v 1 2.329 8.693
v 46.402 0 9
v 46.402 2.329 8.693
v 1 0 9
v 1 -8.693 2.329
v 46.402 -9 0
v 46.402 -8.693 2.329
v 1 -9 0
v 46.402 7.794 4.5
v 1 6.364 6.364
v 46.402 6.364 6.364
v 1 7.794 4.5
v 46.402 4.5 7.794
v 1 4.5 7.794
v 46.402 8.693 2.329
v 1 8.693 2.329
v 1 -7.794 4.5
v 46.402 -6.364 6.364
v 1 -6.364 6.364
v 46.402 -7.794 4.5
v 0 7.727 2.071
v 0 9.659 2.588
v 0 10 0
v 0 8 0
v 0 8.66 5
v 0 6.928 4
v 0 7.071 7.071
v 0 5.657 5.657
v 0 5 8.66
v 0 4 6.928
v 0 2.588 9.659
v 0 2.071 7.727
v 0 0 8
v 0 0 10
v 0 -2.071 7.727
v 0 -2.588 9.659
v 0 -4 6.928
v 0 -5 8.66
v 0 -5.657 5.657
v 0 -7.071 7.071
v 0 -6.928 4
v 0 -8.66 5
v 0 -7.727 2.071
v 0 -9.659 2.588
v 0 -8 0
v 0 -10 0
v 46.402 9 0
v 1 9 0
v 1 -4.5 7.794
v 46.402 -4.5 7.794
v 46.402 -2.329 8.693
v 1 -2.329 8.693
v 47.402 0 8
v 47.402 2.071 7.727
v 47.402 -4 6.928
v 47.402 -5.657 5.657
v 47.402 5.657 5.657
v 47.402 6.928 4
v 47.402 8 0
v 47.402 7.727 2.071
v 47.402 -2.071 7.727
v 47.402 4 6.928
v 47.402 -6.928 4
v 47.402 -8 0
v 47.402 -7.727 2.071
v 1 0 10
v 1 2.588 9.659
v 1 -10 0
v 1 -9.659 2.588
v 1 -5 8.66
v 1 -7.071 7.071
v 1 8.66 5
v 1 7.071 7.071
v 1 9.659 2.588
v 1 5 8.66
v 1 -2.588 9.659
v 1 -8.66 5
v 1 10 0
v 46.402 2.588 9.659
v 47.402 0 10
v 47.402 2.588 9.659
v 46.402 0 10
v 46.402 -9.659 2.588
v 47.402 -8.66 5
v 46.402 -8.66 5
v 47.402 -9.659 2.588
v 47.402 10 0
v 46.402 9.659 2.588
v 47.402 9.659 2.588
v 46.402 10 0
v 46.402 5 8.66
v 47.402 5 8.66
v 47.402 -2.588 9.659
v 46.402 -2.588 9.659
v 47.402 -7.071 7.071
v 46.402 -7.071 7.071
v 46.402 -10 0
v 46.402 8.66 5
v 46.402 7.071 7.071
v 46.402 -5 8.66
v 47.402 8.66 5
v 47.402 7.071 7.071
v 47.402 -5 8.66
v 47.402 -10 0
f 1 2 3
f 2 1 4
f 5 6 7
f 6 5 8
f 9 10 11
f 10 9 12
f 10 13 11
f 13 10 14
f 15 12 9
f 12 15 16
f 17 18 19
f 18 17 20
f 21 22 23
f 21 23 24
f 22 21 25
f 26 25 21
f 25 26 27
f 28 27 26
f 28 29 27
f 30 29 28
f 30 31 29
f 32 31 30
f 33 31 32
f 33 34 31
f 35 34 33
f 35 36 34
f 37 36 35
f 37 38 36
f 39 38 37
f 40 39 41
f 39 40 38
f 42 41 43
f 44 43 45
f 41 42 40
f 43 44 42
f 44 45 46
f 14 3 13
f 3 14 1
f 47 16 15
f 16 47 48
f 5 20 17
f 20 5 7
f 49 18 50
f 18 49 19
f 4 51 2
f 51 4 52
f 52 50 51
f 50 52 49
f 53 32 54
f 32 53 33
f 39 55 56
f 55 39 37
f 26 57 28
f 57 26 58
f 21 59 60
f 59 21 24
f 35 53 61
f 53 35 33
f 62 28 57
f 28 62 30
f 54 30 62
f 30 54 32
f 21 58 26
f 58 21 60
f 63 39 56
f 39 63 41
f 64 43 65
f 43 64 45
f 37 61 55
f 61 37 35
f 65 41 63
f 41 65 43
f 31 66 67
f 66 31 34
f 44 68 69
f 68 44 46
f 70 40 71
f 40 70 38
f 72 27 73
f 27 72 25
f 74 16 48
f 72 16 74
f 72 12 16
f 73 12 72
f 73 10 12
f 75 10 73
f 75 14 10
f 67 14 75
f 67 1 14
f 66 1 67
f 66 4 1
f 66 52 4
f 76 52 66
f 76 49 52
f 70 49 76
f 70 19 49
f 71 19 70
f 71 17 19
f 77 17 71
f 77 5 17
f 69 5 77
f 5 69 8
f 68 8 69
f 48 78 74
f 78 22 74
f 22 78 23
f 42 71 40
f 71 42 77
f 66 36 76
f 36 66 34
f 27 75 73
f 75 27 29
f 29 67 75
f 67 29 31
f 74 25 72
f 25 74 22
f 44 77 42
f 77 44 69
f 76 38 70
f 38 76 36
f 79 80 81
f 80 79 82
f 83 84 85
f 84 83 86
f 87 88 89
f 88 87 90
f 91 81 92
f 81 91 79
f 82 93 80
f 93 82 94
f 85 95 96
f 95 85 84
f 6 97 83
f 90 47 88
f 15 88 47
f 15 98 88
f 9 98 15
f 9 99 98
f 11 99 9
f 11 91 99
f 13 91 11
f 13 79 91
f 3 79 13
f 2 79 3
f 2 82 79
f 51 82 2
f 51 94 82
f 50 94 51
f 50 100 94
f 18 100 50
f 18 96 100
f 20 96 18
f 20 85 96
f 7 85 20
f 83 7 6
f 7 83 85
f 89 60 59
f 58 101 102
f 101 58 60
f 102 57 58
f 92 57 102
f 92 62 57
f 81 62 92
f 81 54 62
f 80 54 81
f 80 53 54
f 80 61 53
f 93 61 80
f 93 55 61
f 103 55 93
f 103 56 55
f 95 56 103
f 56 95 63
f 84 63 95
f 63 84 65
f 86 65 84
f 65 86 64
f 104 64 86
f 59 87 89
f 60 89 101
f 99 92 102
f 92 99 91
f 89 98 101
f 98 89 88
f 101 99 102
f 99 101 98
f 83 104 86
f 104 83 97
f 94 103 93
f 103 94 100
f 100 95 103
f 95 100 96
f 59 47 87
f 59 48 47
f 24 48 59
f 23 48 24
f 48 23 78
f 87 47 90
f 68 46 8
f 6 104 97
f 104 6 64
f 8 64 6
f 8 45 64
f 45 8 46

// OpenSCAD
// file: ../build_environments.scad
// build_environments.scad: modules to build level sections
//

module pool(diameter=10.0, wall_height=2.0, step_width=3.0, connections=[])
{
    difference() {
        union() {
        difference() {
            cylinder(h=0.5,r1=diameter+step_width,r2=diameter+step_width,$fn=48);
            translate([0,0,-0.1])
                cylinder(h=0.7,r1=diameter,r2=diameter,$fn=48);
        }
        difference() {
            cylinder(h=wall_height,r1=diameter+step_width+1.0,r2=diameter+step_width+1.0,$fn=48);
            translate([0,0,-0.1])
                cylinder(h=wall_height+0.2,r1=diameter+step_width,r2=diameter+step_width,$fn=48);
        }
        }
    
        for (c = connections)
        {
            rotate([0,90,0]) {
                angle = atan2(c[1],c[0]);
                rotate([-angle,0,0]) {
                    cylinder(h=diameter+5.0,r1=c[2],r2=c[2],$fn=48);
                }
            }
        }
    }
}

module straight(length=10.0, width=2.0, dy1=0.0, dy2=0.0, dz=0.0)
{
    dims = [0, 0, 0, 0, 0, (dz/length)];
    matrix = [
        [ 1, dims[0], dims[1], 0 ],
        [ dims[2], 1, dims[4], 0 ],
        [ dims[5], dims[3], 1, 0 ],
        [ 0, 0, 0, 1 ]
    ];
    multmatrix(matrix)
    difference() {
        translate([dy1,0,0])
        union() {
            rotate([0,90,0]) {
                difference() {
                    cylinder(h=(length-dy1-dy2),r1=width+1.0,r2=width+1.0,$fn=24);
                    translate([0,0,-0.1])
                        cylinder(h=(length-dy1-dy2+0.2),r1=width,r2=width,$fn=24);
                }
                difference() {
                    cylinder(h=1.0,r1=width+2.0,r2=width+2.0,$fn=24);
                    translate([0,0,-0.1])
                        cylinder(h=1.2,r1=width,r2=width,$fn=24);
                }
                translate([0,0,(length-dy1-dy2)-1.0]) {
                    difference() {
                        cylinder(h=1.0,r1=width+2.0,r2=width+2.0,$fn=24);
                        translate([0,0,-0.1])
                            cylinder(h=1.2,r1=width,r2=width,$fn=24);
                    }
                }
            }
        }
        translate([0,0,-(2*width+4.0)/2])
            cube([3*length,3*length,2*width+4.0],center=true);
    }
}

module curve(p0=[0,0], center=[0,0], dir=1, angle=0.0, width=2.0)
{
    radius = sqrt((p0[0]-center[0])*(p0[0]-center[0]) + (p0[1]-center[1])*(p0[1]-center[1]));
    if (dir == 0) {
        difference() {
            rotate([0,0,-90])
            difference() {
                rotate_extrude(angle = angle, convexity = 10, $fn=32)
                    translate([radius, 0, 0])
                        circle(r = width+1.0,$fn=24);
                rotate([0,0,-1.0])
                    rotate_extrude(angle = angle+2.0, convexity = 10, $fn=32)
                        translate([radius, 0, 0])
                            circle(r = width,$fn=24);
            }
            translate([0,0,-(2*width+4.0)/2])
                cube([5*radius,5*radius,2*width+4.0],center=true);
        }
    }
    else {
        difference() {
            rotate([0,0,90])
            difference() {
                rotate_extrude(angle = -angle, convexity = 10, $fn=32)
                    translate([radius, 0, 0])
                        circle(r = width+1.0,$fn=24);
                rotate([0,0,1.0])
                    rotate_extrude(angle = -angle-2.0, convexity = 10, $fn=32)
                        translate([radius, 0, 0])
                            circle(r = width,$fn=24);
            }
            translate([0,0,-(2*width+4.0)/2])
                cube([5*radius,5*radius,2*width+4.0],center=true);
        }
    }

}

// test pool
//pool(diameter=12.0000, wall_height=3.0000, step_width=3.0000, connections=[[0.0000,-26.0000,2.0000], [23.6074,0.0000,2.0000]]);

// test straight, slope
//straight(length=26.0000, width=2.0000, dy1=11.8322, dy2=6.7082, dz=0.0000);
//straight(length=29.1549, width=12.0000, dy1=0.0000, dy2=0.0000, dz=-15.0000);

// test curve
//curve(p0=[23.6074, 0.0000], center=[23.6074, 5.0000], dir=0, angle=60.1011, width=2.0000);
//curve(p0=[33.6426, 12.4219], center=[37.9771, 9.9295], dir=1, angle=120.4627, width=2.0000);
// main file
use <../build_environments.scad>;
straight(length=47.4021, width=8.0000, dy1=0.0000, dy2=0.0000, dz=0.0000);
